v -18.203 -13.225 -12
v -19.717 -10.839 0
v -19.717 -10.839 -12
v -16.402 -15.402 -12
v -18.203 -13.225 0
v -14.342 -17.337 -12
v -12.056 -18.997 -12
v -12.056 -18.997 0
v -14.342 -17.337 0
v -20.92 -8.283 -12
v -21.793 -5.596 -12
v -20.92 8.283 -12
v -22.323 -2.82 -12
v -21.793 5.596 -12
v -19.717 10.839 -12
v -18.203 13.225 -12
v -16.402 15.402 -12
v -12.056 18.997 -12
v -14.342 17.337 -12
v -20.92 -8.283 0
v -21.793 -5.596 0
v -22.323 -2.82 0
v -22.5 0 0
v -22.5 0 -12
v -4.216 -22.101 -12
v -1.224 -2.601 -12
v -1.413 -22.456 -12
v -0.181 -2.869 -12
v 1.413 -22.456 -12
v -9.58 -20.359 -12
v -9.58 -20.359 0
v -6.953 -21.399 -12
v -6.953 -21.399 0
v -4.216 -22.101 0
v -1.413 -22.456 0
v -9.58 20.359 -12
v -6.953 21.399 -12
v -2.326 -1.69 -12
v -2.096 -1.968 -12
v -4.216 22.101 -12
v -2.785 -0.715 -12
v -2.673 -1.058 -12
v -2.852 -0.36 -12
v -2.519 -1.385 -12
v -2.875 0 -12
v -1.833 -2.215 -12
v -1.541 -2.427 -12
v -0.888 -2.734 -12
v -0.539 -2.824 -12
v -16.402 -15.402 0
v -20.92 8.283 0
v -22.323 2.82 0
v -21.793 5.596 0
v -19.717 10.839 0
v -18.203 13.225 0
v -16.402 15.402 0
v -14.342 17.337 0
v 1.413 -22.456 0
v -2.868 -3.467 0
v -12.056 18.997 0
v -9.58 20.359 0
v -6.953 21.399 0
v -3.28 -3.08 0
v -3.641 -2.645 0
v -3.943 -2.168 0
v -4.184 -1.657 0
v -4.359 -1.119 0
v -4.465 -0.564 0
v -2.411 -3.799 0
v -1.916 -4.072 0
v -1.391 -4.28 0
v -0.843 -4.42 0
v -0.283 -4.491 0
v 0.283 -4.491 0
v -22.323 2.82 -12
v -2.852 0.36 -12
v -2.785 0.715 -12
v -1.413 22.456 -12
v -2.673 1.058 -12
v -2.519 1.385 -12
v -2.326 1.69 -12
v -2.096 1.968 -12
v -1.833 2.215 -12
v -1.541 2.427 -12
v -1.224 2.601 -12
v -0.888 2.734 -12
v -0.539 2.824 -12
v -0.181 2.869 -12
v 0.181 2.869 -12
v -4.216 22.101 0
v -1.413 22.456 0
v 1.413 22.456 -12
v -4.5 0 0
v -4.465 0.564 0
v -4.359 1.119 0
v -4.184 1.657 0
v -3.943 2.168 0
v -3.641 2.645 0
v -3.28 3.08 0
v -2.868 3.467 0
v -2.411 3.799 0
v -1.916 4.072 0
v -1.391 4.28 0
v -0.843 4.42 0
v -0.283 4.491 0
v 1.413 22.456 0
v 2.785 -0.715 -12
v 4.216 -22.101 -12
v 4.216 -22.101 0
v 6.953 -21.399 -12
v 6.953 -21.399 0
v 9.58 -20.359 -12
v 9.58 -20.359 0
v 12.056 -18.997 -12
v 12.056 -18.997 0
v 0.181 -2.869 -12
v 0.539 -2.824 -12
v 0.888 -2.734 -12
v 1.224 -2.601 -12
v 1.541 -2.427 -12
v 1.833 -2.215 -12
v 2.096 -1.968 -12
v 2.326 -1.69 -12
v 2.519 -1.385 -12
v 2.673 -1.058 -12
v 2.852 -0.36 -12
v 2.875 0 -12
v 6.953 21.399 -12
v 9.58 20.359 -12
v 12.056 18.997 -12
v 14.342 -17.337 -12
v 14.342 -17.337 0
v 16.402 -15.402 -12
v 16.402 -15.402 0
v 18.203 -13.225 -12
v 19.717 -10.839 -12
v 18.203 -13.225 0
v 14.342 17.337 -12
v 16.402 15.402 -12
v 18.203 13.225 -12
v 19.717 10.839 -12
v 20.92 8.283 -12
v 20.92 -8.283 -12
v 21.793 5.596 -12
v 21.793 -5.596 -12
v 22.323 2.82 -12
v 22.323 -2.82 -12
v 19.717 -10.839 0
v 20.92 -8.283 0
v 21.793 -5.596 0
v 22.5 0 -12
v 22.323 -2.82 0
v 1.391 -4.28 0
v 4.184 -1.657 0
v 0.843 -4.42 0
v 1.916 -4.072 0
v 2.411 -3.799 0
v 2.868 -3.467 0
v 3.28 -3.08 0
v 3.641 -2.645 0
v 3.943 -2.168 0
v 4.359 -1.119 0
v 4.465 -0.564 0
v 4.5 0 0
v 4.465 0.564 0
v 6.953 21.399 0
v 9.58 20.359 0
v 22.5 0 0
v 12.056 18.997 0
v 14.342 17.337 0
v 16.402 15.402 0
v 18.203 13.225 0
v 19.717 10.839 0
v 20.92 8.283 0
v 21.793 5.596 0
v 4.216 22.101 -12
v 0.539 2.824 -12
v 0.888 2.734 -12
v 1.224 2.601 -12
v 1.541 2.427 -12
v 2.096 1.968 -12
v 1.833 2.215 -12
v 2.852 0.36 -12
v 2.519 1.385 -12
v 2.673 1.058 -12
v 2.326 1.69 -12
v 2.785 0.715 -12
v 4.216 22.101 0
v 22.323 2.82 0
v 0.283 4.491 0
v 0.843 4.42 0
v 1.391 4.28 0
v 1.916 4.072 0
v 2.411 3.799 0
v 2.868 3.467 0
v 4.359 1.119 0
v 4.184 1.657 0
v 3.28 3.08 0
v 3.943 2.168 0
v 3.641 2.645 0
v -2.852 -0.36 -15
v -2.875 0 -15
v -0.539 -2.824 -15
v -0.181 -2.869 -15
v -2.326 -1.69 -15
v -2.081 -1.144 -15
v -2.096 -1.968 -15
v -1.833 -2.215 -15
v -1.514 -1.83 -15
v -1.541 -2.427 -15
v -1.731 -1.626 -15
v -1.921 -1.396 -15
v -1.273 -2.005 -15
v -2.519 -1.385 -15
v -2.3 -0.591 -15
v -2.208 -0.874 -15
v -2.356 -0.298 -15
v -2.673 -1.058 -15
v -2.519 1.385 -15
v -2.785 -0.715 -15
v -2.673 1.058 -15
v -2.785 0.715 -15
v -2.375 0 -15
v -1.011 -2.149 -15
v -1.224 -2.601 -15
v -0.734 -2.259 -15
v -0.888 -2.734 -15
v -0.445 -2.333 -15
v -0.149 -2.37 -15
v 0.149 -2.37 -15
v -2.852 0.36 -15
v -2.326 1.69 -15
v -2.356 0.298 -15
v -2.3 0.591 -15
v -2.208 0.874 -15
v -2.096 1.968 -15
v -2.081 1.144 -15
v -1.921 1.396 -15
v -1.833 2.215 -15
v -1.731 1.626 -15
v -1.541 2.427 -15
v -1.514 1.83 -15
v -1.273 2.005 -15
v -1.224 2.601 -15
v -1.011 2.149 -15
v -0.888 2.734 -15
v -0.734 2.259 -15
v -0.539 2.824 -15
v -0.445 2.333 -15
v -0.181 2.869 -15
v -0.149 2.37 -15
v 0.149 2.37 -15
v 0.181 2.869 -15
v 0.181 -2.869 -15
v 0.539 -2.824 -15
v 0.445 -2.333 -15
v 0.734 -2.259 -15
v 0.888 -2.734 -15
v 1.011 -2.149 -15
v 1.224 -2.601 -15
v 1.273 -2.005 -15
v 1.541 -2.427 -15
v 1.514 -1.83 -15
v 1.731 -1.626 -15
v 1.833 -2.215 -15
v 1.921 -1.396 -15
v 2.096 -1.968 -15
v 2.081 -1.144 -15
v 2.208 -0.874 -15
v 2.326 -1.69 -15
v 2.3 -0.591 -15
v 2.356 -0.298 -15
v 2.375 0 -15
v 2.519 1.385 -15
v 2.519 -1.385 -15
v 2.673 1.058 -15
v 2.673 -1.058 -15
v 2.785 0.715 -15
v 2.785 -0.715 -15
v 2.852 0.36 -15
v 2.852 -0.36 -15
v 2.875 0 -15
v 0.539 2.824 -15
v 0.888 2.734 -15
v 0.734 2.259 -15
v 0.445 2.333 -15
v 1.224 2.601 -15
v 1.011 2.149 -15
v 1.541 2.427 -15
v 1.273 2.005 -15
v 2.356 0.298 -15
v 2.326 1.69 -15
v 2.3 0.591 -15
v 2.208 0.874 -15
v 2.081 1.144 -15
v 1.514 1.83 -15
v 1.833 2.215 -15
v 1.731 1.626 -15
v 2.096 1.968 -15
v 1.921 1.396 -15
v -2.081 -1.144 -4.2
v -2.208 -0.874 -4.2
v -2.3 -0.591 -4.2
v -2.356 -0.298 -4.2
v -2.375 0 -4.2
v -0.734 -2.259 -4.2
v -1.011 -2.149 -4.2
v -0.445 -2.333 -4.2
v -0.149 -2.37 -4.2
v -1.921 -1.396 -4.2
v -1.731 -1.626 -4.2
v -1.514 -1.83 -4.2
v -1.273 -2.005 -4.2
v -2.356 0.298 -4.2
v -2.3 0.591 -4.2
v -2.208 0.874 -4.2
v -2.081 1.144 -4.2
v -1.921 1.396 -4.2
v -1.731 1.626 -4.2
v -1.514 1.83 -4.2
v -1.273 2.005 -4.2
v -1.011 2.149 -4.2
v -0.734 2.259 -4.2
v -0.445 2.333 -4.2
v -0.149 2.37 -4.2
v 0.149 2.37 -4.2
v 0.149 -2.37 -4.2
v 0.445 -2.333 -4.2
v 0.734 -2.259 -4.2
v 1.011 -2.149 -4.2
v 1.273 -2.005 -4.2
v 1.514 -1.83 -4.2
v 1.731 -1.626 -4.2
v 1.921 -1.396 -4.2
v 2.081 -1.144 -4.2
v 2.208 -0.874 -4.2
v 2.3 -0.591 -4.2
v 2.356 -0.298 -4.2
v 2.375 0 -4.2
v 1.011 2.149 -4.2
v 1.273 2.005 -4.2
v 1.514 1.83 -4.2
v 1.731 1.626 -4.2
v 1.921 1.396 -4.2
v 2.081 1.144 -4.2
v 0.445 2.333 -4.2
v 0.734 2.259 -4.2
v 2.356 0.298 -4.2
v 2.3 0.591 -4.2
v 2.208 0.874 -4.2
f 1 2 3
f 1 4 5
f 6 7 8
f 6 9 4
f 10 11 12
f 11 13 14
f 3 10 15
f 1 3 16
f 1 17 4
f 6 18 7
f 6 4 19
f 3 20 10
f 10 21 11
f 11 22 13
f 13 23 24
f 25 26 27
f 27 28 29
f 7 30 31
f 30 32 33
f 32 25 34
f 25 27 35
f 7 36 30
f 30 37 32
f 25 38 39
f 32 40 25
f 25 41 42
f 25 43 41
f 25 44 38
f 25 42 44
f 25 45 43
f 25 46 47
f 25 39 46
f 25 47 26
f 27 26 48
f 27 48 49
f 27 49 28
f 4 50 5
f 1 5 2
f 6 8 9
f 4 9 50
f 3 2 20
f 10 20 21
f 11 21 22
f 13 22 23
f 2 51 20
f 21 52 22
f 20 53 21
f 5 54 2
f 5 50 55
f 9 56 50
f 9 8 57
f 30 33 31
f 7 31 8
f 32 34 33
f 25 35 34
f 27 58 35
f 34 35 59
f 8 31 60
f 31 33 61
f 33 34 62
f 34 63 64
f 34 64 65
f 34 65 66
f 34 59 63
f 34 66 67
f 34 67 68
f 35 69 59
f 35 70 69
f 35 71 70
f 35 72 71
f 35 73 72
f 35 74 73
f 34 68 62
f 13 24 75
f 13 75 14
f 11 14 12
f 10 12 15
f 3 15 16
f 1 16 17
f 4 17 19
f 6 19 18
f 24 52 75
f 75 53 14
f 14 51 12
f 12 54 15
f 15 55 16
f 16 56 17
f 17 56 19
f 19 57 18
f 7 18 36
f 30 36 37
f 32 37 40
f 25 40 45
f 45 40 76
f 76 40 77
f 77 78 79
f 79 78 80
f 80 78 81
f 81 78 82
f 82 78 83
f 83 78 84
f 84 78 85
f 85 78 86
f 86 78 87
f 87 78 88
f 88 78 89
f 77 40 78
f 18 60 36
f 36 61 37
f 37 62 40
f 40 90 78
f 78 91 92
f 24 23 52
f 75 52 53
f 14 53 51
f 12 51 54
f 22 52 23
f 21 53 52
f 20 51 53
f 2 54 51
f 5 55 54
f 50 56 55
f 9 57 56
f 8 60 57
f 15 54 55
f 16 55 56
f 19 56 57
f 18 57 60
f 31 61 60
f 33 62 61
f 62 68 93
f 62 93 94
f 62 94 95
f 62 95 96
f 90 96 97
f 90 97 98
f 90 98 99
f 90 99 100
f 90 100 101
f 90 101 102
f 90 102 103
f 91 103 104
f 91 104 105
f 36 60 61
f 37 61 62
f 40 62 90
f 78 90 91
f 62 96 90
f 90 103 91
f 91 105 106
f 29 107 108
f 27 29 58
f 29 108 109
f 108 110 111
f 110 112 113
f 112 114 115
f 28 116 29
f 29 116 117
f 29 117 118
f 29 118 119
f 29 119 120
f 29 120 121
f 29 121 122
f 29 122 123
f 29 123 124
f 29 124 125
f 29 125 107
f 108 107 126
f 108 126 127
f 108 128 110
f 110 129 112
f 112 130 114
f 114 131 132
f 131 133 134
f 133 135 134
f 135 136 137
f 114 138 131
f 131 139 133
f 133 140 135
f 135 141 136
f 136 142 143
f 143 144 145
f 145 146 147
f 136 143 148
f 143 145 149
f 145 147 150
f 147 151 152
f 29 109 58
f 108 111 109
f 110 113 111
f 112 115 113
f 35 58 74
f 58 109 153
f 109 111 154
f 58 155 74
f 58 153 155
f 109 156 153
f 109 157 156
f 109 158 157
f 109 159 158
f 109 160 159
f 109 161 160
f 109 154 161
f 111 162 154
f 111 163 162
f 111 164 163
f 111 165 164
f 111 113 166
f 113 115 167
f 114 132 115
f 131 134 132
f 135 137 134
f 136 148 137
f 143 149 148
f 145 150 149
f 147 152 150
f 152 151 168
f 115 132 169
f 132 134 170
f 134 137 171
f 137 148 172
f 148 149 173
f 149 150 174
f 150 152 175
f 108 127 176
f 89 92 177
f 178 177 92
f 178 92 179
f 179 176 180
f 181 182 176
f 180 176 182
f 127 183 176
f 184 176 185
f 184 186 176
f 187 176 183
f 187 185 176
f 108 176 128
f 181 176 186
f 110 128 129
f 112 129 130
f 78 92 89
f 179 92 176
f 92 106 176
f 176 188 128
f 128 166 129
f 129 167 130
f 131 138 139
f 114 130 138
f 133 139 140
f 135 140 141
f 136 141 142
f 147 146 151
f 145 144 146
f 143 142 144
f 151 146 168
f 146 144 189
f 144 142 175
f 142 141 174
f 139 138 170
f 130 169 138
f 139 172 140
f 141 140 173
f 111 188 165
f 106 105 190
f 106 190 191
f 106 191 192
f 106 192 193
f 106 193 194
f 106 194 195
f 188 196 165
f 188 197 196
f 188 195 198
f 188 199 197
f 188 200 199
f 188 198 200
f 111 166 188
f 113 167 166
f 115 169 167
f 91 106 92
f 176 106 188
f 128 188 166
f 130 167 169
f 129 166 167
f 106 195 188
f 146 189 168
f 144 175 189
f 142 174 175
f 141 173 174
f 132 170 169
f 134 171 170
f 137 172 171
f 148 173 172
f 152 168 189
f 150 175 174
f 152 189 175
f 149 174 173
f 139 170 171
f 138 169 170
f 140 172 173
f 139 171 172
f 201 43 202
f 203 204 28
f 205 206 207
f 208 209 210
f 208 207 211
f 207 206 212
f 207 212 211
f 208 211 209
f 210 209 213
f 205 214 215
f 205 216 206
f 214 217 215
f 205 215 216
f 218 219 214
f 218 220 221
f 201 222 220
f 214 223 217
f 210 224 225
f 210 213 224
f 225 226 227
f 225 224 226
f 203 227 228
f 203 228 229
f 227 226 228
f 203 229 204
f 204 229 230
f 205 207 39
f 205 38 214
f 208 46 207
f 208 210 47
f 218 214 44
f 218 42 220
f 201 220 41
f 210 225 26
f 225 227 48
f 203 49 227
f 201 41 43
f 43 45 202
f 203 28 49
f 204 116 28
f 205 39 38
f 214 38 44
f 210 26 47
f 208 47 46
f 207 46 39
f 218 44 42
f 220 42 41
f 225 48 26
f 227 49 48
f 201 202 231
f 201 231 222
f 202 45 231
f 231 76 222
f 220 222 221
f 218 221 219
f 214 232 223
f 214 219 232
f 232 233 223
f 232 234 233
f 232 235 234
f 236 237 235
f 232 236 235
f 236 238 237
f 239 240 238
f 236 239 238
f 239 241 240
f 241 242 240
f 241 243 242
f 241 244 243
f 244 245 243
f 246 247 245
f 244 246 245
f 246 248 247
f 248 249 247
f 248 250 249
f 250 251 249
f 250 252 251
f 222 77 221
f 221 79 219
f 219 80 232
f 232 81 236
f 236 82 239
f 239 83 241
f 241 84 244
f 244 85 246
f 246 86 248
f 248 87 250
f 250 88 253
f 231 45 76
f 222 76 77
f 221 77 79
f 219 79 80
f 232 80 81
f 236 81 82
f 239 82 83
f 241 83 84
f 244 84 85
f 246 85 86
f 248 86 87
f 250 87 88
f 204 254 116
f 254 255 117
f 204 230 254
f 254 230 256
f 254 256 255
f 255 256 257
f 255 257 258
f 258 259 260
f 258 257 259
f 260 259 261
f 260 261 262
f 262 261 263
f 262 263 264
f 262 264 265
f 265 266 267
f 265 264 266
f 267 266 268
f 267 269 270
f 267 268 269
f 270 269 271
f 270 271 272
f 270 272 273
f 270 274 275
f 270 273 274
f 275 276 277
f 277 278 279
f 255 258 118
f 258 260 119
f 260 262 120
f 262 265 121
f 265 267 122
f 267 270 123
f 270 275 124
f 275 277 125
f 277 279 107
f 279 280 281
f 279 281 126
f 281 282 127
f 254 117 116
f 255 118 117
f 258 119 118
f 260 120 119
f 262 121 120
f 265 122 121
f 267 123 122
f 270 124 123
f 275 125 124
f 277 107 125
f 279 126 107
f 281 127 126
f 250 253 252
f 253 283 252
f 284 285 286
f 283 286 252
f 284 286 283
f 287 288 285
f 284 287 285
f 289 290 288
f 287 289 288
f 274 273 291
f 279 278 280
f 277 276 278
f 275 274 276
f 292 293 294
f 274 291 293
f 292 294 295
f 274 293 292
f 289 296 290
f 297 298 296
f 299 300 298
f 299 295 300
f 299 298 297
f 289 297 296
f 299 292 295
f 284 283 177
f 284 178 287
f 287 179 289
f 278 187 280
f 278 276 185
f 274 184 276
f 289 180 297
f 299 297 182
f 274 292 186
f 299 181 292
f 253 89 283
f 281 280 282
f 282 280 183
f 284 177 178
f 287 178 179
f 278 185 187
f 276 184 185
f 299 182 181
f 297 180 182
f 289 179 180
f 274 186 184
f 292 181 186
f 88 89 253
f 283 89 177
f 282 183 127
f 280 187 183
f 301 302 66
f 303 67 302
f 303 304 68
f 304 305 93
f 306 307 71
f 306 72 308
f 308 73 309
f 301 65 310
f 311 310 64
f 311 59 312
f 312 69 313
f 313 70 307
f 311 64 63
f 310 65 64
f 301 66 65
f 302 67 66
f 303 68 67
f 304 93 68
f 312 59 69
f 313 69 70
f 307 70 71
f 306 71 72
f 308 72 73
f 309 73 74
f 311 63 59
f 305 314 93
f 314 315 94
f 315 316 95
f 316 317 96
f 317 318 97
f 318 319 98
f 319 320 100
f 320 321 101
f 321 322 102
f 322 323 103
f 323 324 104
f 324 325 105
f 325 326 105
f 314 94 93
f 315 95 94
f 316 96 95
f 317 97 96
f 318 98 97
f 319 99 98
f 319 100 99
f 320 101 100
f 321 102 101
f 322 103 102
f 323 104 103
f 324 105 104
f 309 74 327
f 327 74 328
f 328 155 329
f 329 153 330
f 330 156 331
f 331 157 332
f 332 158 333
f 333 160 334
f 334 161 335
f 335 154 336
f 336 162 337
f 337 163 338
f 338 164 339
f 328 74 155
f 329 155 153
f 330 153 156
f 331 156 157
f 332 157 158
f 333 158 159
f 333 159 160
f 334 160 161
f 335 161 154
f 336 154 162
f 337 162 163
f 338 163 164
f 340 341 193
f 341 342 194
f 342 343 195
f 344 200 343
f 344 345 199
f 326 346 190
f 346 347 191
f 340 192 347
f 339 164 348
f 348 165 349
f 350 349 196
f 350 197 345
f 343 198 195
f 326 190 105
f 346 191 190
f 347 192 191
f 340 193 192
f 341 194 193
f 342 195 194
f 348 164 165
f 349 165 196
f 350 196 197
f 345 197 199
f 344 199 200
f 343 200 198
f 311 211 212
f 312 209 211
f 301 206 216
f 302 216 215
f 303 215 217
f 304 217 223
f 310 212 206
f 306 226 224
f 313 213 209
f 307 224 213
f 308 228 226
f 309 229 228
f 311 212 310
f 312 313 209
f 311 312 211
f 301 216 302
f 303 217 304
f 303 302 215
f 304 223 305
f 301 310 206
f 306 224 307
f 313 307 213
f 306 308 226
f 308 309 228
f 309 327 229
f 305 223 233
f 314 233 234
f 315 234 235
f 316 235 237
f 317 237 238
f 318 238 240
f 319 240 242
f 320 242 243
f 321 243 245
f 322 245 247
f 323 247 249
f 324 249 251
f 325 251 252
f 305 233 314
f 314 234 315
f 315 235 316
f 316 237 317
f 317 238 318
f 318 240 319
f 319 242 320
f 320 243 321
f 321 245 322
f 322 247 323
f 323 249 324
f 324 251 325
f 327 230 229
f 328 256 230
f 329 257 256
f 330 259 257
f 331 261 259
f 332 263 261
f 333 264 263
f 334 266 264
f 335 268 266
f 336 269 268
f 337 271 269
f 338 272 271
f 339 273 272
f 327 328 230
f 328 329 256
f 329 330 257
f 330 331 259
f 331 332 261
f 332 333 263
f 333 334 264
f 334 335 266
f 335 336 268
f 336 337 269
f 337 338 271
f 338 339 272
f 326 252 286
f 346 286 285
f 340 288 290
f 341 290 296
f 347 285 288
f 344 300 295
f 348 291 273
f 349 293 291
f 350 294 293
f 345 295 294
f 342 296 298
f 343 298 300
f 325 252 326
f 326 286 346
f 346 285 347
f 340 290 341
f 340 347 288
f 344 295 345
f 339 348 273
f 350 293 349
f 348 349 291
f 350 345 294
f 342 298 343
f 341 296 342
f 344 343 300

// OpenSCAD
$fn = 50;

difference() {
	union() {
		translate(v = [0, 0, -12.0]) {
			cylinder(h = 12, r = 22.5);
		}
		#translate(v = [0, 0, -15.0]) {
			cylinder(h = 15, r = 2.875);
		}
	}
	union() {
		translate(v = [0, 0, 0]) {
			rotate(a = [0, 0, 0]) {
				difference() {
					union() {
						translate(v = [0, 0, -15.0]) {
							cylinder(h = 15, r = 2.25);
						}
						translate(v = [0, 0, -4.2]) {
							cylinder(h = 4.2, r1 = 2.375, r2 = 4.5);
						}
						translate(v = [0, 0, -15.0]) {
							cylinder(h = 15, r = 2.375);
						}
						translate(v = [0, 0, -15.0]) {
							cylinder(h = 15, r = 2.25);
						}
					}
					union();
				}
			}
		}
	}
}
